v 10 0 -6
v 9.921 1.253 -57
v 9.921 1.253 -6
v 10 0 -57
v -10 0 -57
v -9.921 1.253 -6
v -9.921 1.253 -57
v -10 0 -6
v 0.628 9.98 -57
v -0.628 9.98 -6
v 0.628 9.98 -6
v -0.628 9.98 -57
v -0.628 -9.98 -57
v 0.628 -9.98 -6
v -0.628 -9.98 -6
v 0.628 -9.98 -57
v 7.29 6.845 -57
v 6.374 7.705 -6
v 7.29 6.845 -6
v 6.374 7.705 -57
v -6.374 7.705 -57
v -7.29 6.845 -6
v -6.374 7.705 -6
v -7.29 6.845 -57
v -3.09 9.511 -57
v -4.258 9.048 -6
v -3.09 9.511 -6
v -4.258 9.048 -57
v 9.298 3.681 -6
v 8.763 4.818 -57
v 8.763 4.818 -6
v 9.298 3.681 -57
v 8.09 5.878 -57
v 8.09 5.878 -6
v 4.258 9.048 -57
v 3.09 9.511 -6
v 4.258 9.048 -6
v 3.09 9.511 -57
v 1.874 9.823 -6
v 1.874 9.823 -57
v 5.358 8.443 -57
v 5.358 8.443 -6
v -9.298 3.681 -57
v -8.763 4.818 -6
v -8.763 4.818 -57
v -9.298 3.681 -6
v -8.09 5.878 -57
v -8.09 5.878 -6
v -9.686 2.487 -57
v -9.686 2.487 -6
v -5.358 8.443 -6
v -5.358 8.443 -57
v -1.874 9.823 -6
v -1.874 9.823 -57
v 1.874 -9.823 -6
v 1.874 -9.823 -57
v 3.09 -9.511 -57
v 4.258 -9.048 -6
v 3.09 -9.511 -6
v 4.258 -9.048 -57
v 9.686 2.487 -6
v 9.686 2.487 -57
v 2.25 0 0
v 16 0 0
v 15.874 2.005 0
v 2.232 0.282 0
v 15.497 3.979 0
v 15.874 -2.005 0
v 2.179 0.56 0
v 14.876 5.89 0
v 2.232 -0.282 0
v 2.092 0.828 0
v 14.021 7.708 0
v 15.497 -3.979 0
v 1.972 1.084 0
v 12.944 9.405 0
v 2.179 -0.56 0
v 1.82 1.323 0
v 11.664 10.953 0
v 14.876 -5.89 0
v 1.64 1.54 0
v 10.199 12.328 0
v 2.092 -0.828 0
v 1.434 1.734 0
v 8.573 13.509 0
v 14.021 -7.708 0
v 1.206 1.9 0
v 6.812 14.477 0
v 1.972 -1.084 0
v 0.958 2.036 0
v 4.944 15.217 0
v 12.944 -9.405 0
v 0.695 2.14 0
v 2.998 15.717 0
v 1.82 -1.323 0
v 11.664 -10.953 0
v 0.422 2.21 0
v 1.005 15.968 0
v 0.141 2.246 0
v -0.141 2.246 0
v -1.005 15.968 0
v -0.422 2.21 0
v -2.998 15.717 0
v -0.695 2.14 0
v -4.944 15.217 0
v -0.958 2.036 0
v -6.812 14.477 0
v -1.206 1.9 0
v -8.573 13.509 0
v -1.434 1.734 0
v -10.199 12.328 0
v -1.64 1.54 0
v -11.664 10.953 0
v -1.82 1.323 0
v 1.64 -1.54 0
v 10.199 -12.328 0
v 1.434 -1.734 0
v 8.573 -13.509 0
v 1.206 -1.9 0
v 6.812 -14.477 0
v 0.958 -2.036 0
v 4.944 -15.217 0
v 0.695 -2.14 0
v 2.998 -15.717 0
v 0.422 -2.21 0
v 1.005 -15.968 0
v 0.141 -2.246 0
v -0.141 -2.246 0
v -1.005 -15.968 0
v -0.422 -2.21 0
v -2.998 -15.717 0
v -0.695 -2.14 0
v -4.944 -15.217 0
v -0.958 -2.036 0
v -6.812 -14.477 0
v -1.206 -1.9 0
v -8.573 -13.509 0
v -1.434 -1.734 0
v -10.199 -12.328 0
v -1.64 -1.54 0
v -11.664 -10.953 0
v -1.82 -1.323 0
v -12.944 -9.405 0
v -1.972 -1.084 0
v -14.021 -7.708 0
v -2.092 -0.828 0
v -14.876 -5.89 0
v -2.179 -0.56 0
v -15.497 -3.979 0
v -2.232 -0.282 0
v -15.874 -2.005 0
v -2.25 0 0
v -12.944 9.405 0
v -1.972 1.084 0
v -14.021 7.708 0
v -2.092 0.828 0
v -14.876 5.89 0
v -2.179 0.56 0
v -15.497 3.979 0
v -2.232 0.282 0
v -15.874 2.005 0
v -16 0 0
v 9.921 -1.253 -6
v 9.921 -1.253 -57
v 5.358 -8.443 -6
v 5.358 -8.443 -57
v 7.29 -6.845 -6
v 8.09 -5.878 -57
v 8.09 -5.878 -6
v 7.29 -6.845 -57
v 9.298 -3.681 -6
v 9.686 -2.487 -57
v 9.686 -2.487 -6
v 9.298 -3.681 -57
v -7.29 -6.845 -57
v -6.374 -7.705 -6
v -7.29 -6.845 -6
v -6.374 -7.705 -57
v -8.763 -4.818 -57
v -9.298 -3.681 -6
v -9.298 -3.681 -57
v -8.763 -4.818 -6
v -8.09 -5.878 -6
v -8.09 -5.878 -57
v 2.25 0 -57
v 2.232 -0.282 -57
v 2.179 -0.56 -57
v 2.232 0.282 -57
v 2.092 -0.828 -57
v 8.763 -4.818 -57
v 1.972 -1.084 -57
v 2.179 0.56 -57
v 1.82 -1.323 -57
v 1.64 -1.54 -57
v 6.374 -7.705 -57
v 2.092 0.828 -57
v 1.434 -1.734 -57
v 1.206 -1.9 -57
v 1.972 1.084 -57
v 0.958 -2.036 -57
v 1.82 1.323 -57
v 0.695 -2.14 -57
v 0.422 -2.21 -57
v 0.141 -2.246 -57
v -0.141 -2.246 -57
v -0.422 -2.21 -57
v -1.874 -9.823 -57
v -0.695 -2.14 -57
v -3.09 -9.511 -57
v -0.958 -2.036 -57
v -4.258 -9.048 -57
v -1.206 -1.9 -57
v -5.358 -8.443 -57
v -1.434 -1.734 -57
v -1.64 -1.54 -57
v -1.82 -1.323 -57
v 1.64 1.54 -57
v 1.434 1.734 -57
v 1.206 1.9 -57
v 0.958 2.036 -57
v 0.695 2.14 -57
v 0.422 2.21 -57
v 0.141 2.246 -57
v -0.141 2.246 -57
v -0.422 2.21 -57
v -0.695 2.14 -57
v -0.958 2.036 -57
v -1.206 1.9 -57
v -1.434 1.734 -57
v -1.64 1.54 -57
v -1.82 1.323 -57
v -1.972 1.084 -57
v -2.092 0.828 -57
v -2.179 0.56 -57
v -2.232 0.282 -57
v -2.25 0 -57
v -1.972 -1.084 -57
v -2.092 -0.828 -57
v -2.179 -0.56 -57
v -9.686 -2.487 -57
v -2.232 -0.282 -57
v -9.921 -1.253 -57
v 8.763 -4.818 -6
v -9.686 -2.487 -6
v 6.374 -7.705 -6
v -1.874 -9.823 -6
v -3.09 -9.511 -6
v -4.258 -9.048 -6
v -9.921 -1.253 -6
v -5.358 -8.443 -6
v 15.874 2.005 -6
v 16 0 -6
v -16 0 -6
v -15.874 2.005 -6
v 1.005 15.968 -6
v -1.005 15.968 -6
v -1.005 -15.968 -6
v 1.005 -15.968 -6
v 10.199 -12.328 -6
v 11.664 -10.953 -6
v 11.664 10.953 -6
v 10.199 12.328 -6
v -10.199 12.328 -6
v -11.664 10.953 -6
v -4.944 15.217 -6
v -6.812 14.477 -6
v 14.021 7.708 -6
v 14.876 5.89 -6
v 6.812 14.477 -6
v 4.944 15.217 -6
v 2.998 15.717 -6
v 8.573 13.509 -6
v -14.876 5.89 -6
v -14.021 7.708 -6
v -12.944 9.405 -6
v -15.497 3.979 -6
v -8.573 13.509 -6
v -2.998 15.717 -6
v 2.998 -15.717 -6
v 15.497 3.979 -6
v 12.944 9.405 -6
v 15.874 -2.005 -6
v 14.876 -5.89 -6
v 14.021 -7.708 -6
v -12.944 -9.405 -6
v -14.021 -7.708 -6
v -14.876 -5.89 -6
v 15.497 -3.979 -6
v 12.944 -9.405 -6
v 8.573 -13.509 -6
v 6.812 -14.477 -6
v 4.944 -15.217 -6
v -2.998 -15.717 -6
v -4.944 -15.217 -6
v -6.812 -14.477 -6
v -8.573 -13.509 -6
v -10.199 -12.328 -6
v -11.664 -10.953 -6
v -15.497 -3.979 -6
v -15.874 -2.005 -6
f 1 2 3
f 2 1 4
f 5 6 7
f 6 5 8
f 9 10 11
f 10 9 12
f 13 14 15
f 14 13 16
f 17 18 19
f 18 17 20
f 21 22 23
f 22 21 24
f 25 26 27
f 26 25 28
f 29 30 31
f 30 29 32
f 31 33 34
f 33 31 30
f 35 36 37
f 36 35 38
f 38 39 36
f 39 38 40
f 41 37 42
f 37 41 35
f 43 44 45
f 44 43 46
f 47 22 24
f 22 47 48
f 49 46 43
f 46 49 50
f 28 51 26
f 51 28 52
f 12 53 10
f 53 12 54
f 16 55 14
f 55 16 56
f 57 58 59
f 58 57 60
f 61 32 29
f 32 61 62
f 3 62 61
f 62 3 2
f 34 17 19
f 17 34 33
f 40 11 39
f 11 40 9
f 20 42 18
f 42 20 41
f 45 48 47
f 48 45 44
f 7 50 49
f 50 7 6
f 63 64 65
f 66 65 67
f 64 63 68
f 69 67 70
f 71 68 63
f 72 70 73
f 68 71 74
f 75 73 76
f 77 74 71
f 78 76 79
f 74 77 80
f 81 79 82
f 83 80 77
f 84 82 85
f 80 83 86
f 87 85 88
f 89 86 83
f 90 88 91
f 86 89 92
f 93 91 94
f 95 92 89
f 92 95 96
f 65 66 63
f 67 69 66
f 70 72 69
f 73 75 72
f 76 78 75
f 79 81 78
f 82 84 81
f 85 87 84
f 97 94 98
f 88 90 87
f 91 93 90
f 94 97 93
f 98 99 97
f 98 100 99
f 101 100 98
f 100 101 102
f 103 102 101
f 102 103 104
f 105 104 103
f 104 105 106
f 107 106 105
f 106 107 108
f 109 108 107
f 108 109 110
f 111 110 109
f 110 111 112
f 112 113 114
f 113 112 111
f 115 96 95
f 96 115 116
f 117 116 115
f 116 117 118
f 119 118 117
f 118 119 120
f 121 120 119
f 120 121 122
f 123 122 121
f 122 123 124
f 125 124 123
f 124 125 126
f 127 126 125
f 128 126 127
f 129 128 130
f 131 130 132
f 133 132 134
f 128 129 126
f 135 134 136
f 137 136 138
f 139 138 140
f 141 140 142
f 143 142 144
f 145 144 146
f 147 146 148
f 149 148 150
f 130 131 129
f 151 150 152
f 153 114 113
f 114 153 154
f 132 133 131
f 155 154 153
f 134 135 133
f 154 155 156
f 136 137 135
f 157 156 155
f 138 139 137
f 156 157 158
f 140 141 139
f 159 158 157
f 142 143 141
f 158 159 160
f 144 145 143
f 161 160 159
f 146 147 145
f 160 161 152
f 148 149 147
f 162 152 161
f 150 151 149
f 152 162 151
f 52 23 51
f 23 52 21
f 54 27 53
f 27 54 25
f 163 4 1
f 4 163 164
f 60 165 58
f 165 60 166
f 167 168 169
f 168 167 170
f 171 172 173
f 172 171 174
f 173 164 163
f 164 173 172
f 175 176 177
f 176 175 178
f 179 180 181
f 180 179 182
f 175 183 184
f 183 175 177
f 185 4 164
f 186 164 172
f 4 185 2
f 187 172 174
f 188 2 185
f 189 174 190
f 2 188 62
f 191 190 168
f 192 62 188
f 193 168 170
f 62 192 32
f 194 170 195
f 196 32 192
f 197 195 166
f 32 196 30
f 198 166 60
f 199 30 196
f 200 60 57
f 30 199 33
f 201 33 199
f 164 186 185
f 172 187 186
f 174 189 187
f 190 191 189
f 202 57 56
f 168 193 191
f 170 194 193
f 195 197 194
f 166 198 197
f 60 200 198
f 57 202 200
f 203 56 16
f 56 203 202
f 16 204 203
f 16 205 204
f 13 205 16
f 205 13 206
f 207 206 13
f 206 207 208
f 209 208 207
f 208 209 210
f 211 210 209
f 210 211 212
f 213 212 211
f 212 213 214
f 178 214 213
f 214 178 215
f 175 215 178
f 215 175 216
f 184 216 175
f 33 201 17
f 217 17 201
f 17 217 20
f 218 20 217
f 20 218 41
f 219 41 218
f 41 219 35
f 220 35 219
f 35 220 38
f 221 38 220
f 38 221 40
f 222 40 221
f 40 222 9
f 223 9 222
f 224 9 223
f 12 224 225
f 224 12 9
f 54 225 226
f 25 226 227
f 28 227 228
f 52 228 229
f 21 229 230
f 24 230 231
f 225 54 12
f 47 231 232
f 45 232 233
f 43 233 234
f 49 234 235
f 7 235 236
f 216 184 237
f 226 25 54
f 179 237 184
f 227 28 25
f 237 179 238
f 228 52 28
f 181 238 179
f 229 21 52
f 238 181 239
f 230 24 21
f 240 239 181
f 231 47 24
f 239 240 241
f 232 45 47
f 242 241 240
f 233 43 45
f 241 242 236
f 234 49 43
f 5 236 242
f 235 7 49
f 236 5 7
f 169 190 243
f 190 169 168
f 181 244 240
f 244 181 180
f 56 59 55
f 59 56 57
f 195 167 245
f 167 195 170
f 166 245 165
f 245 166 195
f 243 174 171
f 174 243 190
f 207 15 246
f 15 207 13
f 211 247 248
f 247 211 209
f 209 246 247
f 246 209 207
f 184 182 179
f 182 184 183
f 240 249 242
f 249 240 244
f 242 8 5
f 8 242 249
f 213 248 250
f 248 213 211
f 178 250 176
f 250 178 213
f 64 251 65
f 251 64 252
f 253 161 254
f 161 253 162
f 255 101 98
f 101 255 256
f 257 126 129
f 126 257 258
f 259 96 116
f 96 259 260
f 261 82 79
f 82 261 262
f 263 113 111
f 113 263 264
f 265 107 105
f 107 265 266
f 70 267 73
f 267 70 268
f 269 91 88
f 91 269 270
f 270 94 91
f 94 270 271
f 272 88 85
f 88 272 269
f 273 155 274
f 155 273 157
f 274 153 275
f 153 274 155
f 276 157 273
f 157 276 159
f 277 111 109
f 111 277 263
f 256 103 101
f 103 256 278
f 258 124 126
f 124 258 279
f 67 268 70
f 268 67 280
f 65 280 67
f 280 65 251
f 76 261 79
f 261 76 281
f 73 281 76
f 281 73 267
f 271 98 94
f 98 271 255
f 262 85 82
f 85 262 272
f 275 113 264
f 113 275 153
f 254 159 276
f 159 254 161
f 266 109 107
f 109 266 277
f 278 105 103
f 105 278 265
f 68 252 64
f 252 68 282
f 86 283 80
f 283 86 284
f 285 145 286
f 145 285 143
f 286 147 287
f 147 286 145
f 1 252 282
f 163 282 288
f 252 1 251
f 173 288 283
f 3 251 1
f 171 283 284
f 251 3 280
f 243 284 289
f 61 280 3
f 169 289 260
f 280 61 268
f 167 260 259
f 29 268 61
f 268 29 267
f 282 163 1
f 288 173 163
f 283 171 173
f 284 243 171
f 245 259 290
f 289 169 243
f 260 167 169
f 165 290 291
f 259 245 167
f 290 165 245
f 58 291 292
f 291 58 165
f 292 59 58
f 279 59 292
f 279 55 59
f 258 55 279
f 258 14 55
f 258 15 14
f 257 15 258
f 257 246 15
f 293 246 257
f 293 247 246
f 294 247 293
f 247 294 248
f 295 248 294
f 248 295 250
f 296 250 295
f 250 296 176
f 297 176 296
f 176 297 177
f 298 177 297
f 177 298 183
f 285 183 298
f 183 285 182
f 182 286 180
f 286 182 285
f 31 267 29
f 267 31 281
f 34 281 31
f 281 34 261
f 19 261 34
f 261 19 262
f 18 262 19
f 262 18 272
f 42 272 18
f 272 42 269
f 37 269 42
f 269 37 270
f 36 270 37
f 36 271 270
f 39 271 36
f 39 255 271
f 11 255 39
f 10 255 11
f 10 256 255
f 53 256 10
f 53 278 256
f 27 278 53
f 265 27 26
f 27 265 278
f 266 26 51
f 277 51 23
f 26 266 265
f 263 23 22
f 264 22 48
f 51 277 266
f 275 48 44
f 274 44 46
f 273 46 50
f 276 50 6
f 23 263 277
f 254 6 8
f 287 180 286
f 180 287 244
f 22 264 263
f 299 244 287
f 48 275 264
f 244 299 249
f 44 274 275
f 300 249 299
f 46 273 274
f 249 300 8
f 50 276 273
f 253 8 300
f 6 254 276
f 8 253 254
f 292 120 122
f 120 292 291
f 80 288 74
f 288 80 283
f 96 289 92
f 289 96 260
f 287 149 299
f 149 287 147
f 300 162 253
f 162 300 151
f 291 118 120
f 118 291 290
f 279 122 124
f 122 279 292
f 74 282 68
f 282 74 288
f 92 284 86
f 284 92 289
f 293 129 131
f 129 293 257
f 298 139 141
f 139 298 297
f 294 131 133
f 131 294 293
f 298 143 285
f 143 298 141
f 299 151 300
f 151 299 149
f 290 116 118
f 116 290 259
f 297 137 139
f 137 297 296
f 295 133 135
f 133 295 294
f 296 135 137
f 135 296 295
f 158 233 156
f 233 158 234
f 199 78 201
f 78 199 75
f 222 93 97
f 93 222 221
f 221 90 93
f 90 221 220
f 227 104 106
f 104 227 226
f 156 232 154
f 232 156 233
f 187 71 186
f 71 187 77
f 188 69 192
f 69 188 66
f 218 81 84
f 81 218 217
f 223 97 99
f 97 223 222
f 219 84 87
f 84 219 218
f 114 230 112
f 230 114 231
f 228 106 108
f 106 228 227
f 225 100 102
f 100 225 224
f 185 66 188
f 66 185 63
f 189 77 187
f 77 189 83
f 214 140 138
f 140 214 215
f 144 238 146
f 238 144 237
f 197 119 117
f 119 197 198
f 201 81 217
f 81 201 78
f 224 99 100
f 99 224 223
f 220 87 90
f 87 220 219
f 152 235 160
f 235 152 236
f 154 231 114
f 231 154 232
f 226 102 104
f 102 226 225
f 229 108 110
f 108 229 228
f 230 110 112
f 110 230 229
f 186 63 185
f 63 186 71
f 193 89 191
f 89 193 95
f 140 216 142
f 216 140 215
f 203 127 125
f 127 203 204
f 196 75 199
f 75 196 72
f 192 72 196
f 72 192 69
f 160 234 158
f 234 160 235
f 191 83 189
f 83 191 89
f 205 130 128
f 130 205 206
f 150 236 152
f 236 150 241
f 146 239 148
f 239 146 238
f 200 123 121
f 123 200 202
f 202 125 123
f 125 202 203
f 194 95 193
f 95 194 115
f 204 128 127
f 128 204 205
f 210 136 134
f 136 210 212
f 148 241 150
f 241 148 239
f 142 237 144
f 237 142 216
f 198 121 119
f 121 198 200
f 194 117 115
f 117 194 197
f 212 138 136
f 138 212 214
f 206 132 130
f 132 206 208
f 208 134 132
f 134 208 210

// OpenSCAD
$fn = 50;


difference() {
	union() {
		translate(v = [0, 0, -57.0000000000]) {
			cylinder(h = 57, r = 10.0000000000);
		}
		translate(v = [0, 0, -6.0000000000]) {
			cylinder(h = 6, r = 16.0000000000);
		}
	}
	union() {
		#translate(v = [0, 0, -57]) {
			cylinder(h = 57, r = 2.2500000000);
		}
	}
}
